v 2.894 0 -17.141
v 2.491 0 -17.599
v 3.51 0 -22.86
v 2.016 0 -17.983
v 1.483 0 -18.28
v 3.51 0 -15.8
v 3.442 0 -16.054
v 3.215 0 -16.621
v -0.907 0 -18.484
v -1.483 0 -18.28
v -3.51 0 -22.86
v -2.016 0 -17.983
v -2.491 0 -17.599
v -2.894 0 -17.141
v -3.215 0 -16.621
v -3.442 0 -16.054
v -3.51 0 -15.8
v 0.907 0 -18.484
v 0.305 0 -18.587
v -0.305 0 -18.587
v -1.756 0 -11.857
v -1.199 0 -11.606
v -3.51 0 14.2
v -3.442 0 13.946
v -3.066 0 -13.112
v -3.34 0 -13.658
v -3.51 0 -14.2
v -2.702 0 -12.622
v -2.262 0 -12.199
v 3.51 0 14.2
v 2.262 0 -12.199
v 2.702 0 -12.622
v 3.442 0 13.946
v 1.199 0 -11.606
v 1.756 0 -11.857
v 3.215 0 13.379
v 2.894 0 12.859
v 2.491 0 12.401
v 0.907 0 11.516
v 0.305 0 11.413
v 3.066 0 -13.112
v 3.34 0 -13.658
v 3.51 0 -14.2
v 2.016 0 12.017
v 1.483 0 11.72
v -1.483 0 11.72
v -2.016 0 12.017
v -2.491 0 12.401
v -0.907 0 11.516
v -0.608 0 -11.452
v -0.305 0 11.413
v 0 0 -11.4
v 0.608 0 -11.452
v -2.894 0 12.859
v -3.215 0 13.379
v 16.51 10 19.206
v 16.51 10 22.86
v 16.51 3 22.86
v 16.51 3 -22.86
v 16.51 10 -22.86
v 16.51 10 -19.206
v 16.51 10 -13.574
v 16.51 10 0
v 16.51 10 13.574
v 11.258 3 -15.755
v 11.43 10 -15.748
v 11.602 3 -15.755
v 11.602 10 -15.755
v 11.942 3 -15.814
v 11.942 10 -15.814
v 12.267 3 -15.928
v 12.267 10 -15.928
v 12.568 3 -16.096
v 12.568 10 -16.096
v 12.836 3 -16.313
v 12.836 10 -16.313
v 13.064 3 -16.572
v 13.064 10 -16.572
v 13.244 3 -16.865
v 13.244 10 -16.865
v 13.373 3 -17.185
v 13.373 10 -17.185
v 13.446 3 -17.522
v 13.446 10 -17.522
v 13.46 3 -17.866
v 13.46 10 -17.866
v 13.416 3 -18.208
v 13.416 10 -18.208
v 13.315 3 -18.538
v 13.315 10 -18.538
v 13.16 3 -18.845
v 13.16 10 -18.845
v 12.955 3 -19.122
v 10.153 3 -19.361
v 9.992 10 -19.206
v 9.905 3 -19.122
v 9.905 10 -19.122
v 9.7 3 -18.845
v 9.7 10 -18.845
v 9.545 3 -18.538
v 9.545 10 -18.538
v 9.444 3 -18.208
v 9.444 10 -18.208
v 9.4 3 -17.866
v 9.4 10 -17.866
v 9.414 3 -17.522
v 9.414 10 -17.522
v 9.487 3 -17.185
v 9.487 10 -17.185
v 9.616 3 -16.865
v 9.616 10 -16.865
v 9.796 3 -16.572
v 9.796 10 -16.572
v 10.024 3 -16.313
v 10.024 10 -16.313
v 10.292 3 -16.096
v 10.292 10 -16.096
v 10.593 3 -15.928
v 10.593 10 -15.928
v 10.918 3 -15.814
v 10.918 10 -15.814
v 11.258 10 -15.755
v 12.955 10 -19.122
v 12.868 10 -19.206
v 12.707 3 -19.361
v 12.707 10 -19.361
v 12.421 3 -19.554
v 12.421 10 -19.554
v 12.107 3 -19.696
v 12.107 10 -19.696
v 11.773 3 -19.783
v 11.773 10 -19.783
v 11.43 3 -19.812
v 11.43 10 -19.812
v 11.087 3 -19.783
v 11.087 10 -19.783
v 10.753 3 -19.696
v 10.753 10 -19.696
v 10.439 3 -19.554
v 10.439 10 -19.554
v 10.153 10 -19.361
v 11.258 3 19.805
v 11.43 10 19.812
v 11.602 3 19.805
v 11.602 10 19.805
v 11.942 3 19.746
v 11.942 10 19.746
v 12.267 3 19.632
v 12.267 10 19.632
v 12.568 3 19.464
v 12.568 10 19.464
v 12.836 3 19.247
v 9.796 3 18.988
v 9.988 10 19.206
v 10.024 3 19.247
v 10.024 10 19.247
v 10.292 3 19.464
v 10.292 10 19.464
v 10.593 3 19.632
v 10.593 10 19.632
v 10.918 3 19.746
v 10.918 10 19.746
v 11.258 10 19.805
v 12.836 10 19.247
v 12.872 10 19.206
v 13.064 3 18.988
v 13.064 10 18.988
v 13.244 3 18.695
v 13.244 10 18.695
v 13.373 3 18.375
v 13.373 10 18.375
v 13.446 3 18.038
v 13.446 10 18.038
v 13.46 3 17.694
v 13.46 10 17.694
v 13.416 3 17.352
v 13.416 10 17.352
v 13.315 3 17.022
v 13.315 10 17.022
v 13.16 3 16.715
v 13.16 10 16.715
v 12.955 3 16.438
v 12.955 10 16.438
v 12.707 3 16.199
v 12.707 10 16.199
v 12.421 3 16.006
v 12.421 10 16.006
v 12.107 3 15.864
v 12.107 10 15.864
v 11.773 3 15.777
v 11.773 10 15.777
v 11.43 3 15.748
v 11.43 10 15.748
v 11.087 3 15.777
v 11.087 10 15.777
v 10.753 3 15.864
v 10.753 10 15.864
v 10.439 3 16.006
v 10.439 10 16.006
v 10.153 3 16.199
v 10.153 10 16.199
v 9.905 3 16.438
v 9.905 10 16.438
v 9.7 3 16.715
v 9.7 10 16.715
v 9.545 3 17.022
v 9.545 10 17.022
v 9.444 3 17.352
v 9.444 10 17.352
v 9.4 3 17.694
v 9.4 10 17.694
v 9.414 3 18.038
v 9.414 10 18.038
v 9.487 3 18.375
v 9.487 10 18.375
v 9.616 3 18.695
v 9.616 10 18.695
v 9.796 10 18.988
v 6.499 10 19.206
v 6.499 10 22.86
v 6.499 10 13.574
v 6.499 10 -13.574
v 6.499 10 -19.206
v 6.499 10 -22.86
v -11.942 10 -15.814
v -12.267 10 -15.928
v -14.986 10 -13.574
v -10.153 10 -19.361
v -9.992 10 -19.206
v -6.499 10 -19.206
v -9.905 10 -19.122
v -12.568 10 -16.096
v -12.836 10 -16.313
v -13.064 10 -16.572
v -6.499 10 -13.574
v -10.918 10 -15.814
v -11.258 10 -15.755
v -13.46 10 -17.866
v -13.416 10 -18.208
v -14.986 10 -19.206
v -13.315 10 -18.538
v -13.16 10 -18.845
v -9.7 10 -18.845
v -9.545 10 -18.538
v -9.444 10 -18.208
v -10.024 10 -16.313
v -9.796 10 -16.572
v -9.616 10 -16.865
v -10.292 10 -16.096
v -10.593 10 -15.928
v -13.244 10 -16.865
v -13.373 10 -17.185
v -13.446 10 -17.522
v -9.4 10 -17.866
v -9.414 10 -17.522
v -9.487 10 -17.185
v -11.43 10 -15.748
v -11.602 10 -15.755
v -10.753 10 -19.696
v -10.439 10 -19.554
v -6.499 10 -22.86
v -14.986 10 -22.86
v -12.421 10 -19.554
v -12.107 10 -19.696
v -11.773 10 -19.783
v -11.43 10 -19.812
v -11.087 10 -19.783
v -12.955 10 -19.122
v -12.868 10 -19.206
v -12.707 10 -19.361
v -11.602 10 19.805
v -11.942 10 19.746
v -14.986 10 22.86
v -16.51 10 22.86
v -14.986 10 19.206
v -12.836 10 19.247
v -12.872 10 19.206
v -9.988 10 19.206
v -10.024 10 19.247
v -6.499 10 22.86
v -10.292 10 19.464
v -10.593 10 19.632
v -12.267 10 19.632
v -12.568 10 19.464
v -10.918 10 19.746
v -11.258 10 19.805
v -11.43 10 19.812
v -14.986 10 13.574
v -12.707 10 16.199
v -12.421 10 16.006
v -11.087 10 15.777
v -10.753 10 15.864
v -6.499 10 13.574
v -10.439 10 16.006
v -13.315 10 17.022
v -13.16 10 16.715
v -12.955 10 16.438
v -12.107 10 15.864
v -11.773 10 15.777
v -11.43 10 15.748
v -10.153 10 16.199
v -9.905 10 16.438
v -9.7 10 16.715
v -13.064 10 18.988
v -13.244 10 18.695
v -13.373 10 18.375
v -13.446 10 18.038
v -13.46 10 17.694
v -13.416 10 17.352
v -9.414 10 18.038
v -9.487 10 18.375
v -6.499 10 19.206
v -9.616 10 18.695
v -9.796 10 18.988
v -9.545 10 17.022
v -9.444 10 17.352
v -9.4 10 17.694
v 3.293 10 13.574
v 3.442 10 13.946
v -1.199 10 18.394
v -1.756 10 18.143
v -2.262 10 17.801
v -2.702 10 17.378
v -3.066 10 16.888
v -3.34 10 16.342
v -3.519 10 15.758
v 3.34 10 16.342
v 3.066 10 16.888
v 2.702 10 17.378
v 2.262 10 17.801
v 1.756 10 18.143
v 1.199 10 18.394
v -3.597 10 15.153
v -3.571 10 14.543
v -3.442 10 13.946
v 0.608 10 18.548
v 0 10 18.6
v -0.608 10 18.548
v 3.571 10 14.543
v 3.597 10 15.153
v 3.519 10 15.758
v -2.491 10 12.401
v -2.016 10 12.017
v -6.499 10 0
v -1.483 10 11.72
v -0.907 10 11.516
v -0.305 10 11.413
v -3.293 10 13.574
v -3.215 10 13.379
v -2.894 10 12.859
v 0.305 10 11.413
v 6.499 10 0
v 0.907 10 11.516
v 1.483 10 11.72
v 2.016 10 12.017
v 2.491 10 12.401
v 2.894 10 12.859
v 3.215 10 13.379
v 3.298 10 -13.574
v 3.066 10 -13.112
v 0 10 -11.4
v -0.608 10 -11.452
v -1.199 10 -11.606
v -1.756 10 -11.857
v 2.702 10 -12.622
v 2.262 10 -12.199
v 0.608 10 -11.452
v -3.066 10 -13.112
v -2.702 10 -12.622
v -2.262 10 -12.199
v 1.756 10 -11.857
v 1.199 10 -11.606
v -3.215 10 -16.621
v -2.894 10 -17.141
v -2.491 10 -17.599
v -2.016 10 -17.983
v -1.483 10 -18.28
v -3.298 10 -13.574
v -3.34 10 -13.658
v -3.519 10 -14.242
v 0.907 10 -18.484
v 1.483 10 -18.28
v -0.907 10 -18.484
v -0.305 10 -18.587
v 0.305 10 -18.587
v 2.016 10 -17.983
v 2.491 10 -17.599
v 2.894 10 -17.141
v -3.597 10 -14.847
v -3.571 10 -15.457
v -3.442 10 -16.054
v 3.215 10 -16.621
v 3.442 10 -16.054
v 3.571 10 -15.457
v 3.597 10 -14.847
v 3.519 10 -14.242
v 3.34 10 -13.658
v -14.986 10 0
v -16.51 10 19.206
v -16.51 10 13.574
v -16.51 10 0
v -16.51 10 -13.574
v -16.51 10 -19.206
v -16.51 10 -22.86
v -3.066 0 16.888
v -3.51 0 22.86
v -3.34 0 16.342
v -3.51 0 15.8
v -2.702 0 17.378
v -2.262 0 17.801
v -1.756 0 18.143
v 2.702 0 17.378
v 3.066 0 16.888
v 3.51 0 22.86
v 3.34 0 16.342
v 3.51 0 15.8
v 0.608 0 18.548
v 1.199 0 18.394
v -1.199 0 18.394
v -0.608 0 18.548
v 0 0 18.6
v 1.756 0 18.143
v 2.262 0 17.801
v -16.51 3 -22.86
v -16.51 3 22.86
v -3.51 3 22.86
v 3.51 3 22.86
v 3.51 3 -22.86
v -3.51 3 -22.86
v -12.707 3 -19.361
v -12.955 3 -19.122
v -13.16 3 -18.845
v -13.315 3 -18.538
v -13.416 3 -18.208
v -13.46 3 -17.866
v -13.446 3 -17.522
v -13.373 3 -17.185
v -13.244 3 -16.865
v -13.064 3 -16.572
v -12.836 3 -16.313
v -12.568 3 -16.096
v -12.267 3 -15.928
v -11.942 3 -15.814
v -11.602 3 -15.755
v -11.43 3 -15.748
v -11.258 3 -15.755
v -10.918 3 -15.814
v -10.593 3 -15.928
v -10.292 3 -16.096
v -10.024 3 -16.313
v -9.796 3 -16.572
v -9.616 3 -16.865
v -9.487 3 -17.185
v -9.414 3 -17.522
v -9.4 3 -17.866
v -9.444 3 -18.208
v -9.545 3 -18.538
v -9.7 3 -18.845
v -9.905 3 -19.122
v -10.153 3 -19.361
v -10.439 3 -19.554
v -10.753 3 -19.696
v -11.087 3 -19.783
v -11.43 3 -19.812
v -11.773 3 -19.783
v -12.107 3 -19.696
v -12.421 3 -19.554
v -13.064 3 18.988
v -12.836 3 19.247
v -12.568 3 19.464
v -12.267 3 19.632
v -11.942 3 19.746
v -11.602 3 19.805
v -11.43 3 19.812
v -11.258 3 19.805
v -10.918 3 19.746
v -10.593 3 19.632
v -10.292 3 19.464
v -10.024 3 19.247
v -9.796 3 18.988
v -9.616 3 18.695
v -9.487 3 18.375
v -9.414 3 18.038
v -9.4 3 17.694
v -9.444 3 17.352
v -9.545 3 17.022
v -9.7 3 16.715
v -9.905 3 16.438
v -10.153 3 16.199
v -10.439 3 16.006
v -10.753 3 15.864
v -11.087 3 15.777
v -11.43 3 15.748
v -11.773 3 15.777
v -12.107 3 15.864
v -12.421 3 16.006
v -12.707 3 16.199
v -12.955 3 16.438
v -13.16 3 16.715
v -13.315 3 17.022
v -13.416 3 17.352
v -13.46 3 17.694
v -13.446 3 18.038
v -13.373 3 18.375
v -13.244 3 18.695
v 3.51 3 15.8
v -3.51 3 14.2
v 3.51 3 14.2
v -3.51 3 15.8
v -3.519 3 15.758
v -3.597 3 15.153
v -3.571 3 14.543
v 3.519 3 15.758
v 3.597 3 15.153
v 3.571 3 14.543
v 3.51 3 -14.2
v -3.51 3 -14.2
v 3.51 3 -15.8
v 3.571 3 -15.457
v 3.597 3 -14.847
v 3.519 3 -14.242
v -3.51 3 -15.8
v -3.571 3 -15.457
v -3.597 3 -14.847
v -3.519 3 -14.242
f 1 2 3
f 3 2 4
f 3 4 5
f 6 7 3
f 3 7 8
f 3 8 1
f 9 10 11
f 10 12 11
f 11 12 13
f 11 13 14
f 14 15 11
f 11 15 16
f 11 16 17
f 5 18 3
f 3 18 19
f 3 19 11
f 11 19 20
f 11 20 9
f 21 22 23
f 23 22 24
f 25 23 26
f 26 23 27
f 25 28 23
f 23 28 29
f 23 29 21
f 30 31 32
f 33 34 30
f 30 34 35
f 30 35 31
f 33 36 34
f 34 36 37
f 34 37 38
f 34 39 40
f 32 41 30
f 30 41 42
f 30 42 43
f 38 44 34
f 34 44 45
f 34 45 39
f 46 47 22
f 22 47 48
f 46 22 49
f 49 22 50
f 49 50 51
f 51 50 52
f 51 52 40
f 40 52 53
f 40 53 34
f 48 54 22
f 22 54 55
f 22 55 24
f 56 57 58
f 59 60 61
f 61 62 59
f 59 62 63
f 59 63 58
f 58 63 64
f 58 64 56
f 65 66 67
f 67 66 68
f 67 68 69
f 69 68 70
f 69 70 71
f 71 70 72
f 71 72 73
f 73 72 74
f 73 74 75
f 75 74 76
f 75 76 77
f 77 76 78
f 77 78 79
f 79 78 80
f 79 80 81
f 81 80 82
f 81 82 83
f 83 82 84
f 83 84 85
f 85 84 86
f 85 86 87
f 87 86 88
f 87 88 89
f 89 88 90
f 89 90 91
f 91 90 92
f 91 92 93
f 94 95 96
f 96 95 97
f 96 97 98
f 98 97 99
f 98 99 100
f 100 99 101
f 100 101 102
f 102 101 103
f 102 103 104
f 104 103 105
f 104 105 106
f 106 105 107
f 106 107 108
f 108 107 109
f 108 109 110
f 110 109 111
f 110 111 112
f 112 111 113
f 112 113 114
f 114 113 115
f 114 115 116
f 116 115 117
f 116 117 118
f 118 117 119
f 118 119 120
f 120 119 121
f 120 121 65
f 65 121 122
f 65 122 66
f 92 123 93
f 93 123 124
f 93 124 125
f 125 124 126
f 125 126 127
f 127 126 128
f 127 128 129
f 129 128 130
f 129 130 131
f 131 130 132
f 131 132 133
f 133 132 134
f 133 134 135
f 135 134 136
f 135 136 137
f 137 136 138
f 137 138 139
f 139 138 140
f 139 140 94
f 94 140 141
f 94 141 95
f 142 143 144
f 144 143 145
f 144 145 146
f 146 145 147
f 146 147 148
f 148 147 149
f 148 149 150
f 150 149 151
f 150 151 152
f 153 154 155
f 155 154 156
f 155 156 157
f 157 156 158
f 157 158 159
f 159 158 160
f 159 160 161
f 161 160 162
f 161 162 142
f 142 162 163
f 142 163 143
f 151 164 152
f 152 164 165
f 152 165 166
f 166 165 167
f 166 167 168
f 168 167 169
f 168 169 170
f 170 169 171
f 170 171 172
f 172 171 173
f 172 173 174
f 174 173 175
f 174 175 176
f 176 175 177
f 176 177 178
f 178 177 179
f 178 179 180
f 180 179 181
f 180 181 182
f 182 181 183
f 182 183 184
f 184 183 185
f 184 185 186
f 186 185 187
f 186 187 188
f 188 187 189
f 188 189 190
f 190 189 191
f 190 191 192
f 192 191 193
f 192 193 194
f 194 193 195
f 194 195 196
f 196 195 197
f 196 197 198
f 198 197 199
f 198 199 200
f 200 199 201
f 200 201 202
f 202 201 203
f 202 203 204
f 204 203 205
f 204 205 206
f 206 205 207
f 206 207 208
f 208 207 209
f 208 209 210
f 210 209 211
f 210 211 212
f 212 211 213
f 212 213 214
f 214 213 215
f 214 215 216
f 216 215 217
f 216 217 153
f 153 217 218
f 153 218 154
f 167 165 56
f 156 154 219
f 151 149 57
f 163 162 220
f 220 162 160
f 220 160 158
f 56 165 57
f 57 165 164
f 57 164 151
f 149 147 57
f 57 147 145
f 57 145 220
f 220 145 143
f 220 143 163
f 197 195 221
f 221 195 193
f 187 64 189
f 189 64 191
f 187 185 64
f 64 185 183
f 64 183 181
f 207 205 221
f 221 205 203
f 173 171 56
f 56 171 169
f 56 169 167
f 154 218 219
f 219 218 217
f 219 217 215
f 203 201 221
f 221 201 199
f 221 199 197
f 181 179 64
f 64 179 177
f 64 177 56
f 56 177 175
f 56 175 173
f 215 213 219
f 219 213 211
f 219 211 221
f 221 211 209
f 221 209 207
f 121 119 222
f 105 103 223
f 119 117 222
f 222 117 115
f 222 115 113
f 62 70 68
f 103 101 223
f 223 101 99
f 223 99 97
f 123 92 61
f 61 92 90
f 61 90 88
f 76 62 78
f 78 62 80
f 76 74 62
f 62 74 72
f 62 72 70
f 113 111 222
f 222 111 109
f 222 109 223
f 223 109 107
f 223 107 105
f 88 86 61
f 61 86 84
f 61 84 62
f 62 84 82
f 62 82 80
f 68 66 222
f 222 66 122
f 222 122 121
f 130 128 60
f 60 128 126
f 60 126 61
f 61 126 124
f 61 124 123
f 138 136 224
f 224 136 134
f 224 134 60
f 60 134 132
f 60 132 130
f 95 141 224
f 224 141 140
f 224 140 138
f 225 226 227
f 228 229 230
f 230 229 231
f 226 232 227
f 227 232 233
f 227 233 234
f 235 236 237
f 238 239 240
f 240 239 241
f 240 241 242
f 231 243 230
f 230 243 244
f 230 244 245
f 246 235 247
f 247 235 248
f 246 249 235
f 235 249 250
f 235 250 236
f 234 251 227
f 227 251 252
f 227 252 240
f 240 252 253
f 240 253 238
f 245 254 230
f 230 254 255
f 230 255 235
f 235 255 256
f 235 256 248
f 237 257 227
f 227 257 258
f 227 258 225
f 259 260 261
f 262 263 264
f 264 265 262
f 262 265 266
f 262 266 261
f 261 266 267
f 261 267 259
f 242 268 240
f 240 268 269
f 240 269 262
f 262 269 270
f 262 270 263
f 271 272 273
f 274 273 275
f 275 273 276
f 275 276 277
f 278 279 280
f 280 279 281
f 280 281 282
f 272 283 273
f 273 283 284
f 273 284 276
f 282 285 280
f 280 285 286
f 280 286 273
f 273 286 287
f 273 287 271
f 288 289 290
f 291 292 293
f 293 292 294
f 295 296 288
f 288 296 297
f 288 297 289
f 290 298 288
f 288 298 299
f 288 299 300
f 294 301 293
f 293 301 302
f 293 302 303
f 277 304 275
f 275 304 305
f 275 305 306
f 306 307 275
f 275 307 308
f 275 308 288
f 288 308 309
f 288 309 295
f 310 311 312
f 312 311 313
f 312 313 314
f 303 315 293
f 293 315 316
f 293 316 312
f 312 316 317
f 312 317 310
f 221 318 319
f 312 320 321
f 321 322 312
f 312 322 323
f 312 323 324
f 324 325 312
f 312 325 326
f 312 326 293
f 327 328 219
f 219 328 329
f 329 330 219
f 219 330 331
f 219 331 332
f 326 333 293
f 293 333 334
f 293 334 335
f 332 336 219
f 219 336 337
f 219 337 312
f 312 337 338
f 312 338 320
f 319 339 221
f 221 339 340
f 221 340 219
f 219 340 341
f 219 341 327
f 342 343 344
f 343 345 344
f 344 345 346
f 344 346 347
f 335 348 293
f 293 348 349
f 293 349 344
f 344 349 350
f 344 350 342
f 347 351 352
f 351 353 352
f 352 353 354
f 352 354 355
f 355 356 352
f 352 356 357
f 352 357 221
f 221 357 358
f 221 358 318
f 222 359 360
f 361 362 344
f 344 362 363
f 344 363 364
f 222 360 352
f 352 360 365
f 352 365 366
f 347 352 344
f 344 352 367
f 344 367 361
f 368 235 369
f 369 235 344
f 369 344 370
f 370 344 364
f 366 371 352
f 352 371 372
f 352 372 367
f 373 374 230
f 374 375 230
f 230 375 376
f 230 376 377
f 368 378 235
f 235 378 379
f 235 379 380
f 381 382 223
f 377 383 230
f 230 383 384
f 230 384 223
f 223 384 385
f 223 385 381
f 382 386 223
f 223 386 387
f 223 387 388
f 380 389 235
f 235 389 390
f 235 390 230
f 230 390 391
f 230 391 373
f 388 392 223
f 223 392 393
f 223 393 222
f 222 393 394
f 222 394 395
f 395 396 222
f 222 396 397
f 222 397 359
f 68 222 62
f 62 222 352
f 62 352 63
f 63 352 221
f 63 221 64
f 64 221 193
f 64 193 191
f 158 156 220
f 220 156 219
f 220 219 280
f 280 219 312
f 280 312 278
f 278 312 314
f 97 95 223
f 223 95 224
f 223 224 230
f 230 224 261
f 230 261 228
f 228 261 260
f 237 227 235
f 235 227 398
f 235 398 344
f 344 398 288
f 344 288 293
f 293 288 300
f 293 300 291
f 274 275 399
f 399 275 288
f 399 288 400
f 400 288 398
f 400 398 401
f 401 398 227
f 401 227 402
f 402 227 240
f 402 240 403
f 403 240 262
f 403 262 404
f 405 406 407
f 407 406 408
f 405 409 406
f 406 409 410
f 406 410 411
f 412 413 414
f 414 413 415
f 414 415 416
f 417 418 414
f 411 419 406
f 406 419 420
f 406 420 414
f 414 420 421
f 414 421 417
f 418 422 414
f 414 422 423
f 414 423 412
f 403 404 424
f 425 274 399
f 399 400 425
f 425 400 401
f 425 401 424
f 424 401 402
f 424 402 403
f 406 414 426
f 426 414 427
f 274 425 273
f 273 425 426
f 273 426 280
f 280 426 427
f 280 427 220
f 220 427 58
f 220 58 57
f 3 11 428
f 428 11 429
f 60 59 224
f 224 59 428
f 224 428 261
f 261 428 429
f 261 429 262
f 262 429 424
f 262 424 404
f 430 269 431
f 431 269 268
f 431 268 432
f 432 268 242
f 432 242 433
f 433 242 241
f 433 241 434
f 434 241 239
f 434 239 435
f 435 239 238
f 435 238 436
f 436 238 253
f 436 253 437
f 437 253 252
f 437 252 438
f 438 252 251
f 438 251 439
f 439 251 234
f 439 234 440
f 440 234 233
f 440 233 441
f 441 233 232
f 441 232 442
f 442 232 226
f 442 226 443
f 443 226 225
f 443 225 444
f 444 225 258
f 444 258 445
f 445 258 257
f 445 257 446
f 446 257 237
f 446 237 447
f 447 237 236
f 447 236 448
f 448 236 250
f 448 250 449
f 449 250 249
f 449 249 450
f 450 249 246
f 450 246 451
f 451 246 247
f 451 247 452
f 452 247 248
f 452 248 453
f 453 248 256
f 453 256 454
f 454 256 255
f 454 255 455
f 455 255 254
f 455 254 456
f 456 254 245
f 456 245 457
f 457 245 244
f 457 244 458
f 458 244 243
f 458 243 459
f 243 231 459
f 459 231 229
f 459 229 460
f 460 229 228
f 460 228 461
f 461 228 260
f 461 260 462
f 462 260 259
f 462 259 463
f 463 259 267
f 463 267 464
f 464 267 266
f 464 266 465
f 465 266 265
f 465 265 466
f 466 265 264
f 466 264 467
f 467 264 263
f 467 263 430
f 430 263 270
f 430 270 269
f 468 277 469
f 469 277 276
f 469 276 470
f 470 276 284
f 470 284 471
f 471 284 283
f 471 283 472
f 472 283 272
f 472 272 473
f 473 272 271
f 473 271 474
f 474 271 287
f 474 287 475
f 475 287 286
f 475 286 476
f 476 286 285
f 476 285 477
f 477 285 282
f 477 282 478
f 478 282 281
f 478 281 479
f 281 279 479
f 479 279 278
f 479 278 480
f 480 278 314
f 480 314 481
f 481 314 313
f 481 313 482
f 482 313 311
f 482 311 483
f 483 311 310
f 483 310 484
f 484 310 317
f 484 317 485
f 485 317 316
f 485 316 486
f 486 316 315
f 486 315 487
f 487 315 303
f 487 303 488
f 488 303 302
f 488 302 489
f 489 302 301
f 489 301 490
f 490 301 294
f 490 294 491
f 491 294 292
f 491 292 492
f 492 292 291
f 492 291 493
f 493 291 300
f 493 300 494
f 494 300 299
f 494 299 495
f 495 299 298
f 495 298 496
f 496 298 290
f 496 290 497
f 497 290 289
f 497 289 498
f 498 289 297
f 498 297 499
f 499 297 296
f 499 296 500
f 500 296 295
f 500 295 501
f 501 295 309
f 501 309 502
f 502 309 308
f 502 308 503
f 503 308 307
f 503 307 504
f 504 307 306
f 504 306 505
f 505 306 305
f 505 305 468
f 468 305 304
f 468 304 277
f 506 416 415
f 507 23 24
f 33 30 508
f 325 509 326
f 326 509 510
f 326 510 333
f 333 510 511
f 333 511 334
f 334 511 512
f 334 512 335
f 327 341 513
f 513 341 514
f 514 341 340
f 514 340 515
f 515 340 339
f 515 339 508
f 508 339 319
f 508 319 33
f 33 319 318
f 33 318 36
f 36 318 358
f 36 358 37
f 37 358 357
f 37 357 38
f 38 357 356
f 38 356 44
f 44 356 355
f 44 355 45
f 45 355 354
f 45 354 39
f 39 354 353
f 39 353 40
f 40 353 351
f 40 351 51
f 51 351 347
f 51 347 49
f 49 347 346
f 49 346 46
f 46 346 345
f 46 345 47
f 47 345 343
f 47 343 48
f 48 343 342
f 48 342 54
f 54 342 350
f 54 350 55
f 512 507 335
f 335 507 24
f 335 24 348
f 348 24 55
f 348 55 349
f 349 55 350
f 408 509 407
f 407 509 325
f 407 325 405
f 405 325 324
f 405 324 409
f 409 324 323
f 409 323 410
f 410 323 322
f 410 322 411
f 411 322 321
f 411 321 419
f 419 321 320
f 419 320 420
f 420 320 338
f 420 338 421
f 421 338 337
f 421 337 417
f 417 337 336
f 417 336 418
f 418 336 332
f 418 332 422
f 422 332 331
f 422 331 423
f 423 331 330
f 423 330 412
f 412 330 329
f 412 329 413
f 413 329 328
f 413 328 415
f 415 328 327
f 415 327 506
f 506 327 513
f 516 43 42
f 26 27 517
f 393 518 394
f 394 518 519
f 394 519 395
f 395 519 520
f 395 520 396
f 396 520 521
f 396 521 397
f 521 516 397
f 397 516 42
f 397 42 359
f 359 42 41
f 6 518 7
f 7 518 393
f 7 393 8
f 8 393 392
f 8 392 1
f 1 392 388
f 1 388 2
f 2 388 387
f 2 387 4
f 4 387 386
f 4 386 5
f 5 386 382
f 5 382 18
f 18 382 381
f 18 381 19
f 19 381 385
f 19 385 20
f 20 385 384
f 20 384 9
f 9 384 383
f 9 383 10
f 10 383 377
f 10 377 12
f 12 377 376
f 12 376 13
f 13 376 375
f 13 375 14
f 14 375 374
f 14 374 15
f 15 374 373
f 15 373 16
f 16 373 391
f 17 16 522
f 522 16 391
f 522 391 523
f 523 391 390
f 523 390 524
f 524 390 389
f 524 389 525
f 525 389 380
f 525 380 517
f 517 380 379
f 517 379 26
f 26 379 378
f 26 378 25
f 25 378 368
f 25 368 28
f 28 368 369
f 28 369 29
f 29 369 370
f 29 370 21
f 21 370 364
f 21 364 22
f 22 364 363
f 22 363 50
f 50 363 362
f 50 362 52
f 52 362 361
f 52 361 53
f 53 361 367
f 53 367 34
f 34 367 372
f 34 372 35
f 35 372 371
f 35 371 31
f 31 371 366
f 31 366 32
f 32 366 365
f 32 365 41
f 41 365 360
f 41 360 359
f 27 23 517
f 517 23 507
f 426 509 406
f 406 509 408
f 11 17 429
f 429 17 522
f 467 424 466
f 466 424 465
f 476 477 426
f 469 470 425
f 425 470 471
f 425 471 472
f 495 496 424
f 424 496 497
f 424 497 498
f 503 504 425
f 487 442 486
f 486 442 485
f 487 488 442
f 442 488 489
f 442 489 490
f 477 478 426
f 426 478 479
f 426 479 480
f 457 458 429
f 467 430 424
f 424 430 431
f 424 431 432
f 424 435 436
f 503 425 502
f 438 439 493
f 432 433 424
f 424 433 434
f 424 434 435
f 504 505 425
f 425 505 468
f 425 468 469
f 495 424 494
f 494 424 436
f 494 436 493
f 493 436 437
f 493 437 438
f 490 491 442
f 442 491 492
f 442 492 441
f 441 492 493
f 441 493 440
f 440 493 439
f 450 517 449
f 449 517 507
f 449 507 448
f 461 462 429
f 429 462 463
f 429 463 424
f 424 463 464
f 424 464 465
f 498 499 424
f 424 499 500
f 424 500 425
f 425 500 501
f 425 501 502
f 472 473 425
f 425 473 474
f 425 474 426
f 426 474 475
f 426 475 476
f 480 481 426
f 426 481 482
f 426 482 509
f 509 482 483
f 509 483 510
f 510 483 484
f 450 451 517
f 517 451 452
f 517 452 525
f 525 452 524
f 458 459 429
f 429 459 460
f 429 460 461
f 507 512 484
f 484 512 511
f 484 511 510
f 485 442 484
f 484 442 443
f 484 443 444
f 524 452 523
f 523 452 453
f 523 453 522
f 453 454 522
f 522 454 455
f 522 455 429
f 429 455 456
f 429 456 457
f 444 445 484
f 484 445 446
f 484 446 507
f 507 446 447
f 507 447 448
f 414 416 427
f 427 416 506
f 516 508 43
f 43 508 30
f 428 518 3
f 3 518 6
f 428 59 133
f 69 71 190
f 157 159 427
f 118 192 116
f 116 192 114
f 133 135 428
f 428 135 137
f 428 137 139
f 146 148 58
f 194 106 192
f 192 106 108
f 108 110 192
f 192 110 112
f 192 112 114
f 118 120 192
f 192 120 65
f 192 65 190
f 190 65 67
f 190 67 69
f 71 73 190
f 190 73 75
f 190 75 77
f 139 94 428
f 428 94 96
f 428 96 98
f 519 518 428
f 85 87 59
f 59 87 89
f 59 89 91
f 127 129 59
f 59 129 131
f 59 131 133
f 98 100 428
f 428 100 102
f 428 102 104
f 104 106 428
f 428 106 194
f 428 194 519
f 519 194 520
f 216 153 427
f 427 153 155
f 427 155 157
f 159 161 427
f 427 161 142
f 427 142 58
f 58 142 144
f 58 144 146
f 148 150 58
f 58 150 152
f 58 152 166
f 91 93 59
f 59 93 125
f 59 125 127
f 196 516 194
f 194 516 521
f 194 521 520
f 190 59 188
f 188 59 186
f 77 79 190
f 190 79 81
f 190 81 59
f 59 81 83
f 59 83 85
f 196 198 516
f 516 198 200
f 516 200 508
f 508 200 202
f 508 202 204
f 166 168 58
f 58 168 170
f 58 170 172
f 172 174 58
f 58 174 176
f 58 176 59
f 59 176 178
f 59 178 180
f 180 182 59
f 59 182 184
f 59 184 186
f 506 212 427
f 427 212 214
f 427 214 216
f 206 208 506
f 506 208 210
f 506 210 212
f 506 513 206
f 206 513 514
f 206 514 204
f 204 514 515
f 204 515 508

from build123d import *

# Parameters (mm, degrees)
SKETCH1_W           = 33.02
SKETCH1_H           = 45.72
SKETCH1_R           = 2.032
BOSS_EXTRUDE1_DEPTH = 10
SKETCH2_R           = 3.6
CUT_EXTRUDE1_DEPTH  = 10
SKETCH4_W           = 13
SKETCH4_H           = 45.72
CUT_EXTRUDE4_DEPTH  = 3


with BuildPart() as part:
    # Sketch1 → Boss-Extrude1 (new body)
    with BuildSketch(Plane(origin=(0, 0, 0), x_dir=(1, 0, 0), z_dir=(0, 1, 0))):
        Rectangle(SKETCH1_W, SKETCH1_H)
        with Locations((-11.43, 17.78)):
            Circle(SKETCH1_R, mode=Mode.SUBTRACT)
        with Locations((11.43, 17.78)):
            Circle(SKETCH1_R, mode=Mode.SUBTRACT)
        with Locations((-11.43, -17.78)):
            Circle(SKETCH1_R, mode=Mode.SUBTRACT)
        with Locations((11.43, -17.78)):
            Circle(SKETCH1_R, mode=Mode.SUBTRACT)
    extrude(amount=BOSS_EXTRUDE1_DEPTH)

    # Sketch2 → Cut-Extrude1 (cut)
    with BuildSketch(Plane(origin=(0, 10, 0), x_dir=(1, 0, 0), z_dir=(0, 1, 0))):
        with Locations((0, 15)):
            Circle(SKETCH2_R)
        with Locations((0, -15)):
            Circle(SKETCH2_R)
    extrude(amount=-CUT_EXTRUDE1_DEPTH, mode=Mode.SUBTRACT)

    # Sketch4 → Cut-Extrude4 (cut)
    with BuildSketch(Plane.XZ):
        with Locations((10.01, 0)):
            Rectangle(SKETCH4_W, SKETCH4_H)
        with Locations((-10.01, 0)):
            Rectangle(SKETCH4_W, SKETCH4_H)
    extrude(amount=-CUT_EXTRUDE4_DEPTH, mode=Mode.SUBTRACT)


solid = part.part
